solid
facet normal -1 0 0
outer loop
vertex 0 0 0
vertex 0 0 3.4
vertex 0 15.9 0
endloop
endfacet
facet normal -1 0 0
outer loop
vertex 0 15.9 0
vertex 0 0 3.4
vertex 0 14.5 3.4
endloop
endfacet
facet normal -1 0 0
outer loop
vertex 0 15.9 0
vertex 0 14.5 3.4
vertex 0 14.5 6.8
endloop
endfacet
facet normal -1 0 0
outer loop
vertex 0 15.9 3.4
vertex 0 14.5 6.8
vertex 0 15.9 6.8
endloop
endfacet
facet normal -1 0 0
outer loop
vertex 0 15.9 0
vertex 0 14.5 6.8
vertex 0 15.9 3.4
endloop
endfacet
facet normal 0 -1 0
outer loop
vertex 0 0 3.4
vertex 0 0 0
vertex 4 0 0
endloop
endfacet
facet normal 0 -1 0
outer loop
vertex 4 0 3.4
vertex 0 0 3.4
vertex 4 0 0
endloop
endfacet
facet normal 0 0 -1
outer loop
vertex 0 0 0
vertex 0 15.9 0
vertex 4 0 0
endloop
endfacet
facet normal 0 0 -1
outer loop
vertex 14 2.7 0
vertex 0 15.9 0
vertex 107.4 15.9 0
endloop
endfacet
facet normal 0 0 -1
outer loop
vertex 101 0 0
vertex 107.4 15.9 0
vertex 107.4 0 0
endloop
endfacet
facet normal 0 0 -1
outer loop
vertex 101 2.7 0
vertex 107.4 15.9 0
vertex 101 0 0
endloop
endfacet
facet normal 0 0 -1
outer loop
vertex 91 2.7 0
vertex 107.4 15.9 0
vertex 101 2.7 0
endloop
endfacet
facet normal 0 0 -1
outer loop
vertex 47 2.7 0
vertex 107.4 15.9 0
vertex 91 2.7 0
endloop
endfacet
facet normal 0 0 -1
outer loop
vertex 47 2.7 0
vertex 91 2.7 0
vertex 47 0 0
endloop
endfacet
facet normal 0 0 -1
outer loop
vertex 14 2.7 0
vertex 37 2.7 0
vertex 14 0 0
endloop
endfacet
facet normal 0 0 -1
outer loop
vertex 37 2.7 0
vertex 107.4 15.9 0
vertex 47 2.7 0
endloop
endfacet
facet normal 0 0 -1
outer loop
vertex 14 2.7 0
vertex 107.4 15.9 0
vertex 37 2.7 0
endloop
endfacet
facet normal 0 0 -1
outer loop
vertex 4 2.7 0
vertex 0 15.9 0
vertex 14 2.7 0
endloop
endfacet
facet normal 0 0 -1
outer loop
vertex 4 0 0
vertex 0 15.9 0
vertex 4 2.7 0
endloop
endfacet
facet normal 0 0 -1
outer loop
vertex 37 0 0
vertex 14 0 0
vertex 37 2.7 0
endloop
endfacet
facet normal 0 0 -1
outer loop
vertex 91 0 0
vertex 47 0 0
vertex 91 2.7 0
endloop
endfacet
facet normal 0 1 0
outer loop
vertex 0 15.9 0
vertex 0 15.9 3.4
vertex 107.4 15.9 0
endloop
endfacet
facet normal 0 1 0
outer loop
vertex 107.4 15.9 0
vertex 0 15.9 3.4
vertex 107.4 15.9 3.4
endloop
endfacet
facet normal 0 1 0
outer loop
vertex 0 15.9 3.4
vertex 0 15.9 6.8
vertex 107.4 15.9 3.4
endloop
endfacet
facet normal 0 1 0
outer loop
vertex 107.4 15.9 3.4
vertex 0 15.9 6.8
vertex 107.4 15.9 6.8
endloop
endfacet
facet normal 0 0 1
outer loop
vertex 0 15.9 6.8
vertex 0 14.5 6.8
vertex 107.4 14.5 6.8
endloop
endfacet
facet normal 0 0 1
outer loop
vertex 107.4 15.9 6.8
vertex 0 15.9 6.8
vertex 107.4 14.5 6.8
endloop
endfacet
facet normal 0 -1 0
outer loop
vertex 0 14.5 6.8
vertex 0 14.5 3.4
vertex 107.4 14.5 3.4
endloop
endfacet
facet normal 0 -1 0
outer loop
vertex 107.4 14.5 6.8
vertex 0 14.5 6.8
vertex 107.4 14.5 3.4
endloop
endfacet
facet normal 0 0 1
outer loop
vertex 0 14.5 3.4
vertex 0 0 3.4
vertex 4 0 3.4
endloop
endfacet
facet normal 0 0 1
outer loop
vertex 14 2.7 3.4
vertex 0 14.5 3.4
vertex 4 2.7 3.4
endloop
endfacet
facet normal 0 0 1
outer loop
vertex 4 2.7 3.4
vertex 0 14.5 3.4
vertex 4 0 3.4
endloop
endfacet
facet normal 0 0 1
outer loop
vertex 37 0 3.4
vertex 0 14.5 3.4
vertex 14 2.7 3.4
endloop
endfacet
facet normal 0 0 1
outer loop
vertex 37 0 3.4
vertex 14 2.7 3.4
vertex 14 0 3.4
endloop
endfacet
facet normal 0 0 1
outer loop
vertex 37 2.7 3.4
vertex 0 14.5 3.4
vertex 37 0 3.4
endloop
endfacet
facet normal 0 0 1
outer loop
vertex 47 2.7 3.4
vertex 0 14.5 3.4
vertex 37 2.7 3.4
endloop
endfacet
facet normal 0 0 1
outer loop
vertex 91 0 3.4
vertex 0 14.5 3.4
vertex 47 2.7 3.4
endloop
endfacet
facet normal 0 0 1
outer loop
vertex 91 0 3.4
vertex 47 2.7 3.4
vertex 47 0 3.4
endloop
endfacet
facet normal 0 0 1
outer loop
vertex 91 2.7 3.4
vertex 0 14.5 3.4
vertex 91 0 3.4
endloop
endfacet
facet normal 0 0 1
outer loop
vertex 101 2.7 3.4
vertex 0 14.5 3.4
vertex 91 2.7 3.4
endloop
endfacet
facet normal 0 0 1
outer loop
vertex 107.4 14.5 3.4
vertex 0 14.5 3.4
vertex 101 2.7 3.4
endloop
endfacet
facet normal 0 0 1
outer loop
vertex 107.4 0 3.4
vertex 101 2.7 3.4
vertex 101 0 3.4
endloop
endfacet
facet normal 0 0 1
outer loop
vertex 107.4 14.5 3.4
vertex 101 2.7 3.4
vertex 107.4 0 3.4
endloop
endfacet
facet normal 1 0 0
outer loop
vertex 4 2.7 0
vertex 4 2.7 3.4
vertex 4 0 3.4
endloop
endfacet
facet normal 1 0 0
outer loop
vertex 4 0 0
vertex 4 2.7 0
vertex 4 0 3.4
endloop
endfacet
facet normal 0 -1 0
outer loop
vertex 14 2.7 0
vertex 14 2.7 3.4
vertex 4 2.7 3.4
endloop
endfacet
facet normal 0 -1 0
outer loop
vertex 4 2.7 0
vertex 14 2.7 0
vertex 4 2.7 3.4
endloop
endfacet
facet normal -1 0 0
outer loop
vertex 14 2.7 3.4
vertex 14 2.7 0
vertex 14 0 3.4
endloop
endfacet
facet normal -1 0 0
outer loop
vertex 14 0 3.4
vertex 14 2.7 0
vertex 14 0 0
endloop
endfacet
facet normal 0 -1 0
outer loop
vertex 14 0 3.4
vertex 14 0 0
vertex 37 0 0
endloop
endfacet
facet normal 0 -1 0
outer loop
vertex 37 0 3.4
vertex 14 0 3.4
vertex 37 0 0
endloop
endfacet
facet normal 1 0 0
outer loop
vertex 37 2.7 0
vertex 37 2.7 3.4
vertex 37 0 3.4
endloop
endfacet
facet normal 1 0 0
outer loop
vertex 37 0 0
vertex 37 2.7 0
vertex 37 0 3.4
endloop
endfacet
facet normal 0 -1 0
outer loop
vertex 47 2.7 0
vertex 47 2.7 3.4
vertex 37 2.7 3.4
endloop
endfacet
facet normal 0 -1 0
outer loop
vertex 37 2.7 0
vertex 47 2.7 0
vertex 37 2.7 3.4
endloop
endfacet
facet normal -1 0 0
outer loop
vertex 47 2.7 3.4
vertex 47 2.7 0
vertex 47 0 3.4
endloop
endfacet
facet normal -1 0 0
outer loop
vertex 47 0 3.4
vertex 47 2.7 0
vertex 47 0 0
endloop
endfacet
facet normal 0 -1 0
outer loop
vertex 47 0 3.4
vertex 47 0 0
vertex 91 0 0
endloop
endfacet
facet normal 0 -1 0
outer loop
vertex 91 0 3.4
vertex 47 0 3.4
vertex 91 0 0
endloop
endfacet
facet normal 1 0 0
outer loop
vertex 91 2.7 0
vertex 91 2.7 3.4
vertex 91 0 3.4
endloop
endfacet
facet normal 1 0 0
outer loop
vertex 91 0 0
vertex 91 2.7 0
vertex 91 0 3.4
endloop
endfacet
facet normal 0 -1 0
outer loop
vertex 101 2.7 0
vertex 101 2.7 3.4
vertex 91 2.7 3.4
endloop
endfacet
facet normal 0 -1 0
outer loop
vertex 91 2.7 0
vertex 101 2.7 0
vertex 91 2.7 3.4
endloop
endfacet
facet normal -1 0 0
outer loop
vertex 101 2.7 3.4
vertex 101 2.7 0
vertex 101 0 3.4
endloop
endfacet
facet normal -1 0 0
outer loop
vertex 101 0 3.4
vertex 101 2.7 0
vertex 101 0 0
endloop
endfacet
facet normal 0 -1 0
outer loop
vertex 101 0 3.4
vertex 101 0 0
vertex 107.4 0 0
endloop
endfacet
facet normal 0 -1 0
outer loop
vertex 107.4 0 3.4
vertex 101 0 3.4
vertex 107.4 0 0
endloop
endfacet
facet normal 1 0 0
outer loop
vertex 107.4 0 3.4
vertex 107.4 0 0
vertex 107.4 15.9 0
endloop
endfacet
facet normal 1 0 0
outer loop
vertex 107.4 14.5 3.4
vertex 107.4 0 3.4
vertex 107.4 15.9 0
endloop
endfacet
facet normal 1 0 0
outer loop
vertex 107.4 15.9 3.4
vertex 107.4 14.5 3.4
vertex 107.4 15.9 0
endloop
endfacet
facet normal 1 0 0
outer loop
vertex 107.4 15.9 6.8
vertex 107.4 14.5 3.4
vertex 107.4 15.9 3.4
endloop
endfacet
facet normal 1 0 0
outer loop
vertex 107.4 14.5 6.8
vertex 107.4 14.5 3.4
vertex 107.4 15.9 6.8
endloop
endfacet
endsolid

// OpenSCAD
h = 4;
b = 16.5;
l = 108;

h2 = 4;
b2 = 2;

d = -0.3;

ba = 3;
la = 10;

a1 = 4;
a2 = a1 + 33;
a3 = a2 + 54;
difference(){
	union(){
		cube([l+2*d,b+2*d,h+2*d]);
		translate([0,b-b2,h+2*d]) cube([l+2*d,b2+2*d,h2+2*d]);
	}
	translate([a1,d,-0.5*d-h/2]) cube([la,ba,2*d+2*h]);
	translate([a2,d,-0.5*d-h/2]) cube([la,ba,2*d+2*h]);
	translate([a3,d,-0.5*d-h/2]) cube([la,ba,2*d+2*h]);

}
